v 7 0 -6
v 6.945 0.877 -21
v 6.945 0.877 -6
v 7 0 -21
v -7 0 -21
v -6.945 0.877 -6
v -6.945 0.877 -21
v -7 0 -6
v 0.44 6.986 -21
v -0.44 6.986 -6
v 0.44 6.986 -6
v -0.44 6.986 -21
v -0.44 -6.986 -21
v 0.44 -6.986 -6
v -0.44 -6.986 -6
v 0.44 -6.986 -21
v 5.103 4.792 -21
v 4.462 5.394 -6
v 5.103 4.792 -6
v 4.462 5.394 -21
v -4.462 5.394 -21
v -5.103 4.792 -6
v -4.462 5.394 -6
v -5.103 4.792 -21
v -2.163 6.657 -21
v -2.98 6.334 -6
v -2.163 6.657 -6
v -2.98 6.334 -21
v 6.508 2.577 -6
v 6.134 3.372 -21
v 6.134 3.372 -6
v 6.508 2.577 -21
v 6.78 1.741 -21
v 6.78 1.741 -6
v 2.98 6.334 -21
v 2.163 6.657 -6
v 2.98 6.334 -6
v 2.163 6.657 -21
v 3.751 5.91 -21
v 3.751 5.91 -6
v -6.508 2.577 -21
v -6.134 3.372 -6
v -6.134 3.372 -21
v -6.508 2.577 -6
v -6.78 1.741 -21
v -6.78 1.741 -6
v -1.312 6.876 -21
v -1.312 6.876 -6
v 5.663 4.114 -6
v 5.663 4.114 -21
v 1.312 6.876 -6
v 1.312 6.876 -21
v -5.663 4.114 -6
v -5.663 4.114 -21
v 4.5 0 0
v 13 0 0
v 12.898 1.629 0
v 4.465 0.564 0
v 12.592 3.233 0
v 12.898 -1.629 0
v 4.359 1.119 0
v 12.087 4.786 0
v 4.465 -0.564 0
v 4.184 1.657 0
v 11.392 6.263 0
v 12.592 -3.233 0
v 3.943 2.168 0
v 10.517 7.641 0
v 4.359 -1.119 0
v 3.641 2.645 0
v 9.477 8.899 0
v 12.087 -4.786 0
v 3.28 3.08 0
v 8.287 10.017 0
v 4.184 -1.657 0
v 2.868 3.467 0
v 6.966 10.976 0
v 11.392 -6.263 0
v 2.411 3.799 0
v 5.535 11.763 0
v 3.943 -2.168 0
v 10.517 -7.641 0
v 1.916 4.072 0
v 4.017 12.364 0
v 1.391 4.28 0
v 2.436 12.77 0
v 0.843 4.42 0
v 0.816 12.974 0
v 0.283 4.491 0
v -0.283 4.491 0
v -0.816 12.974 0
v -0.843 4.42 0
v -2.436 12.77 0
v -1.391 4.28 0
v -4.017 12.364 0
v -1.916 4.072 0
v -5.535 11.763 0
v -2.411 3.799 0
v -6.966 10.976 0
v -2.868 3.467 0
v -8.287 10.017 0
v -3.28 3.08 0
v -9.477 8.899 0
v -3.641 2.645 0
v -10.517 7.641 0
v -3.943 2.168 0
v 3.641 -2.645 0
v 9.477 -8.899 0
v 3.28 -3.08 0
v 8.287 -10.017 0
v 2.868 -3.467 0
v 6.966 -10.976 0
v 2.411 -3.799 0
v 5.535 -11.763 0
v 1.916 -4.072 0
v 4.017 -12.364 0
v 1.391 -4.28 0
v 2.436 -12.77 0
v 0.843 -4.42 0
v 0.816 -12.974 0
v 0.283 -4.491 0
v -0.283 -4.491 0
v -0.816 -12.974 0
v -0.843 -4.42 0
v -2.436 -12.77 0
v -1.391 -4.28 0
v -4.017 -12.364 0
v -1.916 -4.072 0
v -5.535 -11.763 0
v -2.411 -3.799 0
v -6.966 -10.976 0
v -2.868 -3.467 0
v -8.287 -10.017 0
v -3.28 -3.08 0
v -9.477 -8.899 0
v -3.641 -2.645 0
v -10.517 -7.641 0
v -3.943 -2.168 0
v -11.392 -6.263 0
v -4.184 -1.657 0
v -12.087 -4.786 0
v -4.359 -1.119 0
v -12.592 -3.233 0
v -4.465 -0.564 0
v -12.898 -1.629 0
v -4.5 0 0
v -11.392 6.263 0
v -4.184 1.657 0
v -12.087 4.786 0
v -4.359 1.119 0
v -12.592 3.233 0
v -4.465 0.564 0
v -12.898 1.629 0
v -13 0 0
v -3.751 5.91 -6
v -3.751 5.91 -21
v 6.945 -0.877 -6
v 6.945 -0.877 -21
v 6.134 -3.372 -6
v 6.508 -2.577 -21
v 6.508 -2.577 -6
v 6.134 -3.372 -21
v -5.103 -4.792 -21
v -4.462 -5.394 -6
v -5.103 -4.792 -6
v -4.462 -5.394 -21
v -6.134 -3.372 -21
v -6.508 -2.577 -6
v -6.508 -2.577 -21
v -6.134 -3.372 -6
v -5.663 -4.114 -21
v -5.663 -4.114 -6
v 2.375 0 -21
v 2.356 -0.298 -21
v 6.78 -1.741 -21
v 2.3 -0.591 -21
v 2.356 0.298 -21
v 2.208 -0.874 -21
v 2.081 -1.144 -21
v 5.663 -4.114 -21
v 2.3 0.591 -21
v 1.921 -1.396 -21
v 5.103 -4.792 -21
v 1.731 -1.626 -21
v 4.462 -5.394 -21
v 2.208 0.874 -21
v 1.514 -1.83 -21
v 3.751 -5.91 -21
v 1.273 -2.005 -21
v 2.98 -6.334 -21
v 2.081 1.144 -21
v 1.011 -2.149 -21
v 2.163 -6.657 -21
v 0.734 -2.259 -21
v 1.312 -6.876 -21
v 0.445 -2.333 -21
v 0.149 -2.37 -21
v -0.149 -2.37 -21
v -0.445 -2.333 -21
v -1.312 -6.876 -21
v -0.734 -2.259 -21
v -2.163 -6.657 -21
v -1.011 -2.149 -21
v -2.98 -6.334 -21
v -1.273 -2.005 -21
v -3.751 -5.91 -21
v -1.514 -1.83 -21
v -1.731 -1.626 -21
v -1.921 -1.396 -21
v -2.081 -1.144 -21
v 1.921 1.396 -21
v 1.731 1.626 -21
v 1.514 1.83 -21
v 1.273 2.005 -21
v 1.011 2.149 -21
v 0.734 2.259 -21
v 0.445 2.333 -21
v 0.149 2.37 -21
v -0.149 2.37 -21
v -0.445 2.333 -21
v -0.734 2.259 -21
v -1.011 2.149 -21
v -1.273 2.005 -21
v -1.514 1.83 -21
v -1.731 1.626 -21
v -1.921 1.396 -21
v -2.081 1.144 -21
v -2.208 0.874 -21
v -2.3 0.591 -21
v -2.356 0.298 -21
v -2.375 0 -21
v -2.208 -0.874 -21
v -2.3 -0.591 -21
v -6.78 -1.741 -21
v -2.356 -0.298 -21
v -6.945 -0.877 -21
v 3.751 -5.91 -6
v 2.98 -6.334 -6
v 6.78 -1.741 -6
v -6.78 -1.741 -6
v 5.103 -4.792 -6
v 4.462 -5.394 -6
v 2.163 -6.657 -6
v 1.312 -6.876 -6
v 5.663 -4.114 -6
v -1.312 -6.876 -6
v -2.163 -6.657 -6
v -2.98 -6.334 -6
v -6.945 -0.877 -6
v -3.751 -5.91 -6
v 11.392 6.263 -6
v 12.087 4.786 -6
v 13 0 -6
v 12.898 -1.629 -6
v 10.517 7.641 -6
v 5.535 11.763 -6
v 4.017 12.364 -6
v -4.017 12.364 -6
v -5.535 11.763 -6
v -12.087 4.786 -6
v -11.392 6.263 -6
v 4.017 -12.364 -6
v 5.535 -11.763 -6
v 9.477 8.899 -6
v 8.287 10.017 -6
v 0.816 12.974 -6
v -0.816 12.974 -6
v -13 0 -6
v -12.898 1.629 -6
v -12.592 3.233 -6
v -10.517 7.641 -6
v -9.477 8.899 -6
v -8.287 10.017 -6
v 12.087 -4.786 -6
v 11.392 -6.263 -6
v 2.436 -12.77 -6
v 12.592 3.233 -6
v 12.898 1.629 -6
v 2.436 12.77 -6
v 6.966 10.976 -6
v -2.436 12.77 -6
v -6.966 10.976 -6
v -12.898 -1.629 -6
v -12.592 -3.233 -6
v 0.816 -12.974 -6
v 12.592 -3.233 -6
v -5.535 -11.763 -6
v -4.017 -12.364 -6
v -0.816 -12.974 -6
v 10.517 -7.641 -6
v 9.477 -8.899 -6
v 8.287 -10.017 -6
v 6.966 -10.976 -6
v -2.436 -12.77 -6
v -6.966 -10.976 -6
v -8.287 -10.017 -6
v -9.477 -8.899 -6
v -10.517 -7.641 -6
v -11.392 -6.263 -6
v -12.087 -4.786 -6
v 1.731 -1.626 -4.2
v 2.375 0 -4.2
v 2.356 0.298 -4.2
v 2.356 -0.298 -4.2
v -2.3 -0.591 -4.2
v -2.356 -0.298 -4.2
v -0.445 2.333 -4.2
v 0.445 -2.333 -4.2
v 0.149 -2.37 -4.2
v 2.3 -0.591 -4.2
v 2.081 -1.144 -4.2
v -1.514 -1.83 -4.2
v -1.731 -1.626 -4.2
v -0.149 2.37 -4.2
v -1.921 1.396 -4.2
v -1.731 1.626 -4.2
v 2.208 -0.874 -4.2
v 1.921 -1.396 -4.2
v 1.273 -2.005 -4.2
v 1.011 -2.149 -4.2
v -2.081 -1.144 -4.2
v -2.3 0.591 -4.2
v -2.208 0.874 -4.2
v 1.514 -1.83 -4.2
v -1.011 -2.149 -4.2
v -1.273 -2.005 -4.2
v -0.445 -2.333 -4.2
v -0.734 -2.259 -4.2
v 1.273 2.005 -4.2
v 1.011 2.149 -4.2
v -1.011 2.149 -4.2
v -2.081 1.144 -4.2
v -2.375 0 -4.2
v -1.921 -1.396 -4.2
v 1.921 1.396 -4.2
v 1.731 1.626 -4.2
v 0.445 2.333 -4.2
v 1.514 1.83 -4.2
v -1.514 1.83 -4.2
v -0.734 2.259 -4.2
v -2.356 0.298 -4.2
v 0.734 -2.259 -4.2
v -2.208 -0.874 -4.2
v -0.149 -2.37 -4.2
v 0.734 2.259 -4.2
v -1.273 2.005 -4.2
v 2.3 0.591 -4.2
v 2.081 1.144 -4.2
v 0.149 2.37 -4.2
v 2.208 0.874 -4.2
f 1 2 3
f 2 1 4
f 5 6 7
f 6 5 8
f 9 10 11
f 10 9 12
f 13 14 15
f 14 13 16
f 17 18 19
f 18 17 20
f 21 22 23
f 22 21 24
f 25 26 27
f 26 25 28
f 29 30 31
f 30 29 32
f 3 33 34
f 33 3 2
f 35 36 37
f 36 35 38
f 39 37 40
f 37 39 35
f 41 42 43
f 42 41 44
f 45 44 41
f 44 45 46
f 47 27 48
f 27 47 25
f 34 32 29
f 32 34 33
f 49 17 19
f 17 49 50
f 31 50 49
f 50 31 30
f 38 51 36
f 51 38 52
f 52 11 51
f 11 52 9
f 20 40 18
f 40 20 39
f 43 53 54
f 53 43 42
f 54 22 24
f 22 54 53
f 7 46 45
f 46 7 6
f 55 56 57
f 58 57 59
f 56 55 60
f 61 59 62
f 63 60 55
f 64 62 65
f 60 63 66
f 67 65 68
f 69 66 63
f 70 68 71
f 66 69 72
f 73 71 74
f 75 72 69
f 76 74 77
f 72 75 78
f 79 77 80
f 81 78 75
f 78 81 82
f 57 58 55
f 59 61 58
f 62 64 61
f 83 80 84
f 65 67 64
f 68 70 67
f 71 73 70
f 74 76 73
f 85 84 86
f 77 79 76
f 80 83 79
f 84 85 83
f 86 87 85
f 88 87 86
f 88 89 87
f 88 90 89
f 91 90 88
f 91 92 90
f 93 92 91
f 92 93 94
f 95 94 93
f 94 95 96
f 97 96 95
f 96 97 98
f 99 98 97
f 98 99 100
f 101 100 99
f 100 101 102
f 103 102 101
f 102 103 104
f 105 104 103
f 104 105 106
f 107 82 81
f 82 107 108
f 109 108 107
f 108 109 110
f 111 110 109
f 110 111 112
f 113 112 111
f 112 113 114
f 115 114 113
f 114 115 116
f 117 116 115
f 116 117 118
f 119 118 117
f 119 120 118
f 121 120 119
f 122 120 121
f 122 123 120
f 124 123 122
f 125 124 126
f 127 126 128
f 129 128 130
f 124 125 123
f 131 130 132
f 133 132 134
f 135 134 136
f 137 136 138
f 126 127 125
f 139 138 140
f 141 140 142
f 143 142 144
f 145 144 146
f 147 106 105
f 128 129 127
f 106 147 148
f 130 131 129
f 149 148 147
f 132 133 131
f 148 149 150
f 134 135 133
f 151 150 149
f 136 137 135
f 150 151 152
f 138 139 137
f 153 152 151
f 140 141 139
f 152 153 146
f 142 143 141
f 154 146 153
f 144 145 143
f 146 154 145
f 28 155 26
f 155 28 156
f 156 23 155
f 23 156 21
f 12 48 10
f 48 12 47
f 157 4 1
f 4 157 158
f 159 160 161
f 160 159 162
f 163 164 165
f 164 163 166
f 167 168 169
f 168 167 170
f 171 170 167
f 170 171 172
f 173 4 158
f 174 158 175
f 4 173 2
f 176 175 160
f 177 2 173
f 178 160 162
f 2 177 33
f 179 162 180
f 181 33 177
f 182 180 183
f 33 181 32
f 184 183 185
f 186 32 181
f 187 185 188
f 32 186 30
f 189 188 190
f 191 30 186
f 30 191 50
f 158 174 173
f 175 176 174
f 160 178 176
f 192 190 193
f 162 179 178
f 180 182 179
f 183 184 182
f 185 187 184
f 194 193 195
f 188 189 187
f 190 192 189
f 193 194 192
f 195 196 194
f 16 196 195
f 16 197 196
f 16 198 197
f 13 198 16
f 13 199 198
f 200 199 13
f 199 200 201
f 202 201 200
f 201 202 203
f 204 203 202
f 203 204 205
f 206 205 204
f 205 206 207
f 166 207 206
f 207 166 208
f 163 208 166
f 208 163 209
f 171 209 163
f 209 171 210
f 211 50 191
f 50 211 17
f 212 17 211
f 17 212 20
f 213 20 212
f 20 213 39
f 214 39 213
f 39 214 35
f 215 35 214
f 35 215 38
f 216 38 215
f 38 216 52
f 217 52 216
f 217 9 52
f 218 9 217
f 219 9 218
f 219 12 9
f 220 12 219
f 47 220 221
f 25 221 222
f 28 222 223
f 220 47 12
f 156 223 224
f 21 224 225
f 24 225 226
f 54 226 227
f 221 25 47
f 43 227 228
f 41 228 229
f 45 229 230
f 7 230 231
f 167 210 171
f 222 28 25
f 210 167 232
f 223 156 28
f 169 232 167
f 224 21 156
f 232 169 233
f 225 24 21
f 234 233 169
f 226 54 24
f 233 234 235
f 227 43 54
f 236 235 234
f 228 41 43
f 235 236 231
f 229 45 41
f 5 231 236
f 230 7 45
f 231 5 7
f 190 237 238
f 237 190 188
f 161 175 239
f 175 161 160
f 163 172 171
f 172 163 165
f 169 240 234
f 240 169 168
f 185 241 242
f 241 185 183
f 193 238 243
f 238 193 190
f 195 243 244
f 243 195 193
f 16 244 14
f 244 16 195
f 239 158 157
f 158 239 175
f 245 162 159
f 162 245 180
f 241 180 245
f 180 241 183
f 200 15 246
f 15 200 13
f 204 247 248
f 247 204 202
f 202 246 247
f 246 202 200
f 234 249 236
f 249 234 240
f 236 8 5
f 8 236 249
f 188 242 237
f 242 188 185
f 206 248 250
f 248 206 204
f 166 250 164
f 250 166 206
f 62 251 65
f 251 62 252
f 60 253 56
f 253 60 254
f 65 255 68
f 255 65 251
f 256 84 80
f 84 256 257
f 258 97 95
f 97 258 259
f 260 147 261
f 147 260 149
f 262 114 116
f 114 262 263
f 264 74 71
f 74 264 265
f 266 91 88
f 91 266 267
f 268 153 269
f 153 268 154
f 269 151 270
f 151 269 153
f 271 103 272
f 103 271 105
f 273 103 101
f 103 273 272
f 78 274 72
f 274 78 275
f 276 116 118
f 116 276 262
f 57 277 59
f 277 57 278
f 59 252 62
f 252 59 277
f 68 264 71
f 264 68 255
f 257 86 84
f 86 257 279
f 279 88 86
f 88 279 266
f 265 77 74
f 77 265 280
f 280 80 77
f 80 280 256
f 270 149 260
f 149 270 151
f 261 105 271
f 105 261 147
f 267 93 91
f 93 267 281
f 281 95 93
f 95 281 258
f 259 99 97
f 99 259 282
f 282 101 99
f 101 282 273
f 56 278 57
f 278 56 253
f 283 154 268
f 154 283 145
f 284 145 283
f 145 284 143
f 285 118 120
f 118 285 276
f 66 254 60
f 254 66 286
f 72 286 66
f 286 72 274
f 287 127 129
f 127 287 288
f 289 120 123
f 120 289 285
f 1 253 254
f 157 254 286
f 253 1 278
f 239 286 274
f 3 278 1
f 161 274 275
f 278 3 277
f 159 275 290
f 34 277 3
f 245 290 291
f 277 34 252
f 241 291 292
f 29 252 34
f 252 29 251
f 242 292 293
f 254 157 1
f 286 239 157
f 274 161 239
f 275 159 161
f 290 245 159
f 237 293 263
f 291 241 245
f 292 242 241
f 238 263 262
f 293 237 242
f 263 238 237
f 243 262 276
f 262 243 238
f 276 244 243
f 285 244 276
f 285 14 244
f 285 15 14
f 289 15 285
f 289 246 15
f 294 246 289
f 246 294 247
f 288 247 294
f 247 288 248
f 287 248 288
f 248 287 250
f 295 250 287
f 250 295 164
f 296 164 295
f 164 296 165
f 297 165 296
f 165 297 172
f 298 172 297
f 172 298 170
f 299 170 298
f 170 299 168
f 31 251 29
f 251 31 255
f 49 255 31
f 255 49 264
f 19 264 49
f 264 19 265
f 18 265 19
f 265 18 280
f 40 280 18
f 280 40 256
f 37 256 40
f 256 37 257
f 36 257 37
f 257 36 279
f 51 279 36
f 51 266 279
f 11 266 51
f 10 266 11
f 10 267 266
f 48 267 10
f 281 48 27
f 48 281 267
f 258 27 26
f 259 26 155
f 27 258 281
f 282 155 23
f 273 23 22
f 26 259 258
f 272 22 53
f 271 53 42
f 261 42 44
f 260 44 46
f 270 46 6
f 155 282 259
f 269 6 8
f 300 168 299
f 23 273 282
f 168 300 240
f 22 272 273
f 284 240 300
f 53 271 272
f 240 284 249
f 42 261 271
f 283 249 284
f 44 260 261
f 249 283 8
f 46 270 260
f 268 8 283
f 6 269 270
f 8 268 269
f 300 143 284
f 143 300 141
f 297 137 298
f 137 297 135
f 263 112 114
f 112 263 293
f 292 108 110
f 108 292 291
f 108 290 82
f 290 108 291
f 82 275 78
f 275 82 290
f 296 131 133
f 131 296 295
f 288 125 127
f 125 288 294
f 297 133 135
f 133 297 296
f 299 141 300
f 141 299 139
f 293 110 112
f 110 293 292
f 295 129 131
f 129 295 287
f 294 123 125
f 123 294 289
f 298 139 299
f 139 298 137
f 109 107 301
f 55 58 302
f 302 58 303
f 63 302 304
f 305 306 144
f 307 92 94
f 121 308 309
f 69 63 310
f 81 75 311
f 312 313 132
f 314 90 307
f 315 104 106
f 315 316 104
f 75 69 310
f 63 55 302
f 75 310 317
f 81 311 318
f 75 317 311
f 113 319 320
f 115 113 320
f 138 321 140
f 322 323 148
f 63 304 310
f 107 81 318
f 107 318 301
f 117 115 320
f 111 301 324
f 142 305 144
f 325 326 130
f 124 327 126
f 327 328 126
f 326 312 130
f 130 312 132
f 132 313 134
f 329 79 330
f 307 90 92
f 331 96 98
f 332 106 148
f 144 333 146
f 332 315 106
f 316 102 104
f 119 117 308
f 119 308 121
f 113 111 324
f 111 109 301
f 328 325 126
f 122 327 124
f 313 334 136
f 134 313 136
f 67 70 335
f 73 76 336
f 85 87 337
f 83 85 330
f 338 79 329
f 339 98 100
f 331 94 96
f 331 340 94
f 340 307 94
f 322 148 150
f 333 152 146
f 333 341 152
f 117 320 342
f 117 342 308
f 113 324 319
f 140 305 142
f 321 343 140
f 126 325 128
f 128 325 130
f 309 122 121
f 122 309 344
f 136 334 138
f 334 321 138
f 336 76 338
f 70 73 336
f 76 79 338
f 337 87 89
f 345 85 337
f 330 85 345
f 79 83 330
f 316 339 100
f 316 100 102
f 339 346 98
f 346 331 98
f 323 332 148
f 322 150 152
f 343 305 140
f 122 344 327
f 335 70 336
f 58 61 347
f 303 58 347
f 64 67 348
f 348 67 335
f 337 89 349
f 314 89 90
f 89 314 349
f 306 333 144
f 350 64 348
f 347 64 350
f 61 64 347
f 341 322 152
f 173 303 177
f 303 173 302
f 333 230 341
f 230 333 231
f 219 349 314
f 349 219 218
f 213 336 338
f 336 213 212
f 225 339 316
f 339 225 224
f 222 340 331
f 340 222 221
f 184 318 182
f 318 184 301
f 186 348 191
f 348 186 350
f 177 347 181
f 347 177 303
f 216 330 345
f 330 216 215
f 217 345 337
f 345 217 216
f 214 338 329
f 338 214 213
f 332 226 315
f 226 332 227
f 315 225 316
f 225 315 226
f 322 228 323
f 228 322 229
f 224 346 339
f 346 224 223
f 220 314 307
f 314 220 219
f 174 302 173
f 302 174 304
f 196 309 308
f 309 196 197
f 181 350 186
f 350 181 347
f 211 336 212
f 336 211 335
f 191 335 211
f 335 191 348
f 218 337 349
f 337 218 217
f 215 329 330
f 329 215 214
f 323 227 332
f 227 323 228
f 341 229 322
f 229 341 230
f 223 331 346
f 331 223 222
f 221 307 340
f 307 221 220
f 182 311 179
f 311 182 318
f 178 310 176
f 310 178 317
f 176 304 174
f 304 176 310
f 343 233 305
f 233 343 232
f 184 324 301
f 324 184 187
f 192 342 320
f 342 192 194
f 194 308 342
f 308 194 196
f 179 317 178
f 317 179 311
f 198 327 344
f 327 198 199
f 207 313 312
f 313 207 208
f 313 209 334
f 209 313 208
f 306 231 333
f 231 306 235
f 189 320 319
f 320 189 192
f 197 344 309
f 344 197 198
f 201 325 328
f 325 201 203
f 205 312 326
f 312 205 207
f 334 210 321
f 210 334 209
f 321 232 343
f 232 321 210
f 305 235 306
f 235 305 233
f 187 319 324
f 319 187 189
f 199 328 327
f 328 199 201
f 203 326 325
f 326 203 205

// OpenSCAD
$fn = 50;


difference() {
	union() {
		translate(v = [0, 0, -21.0000000000]) {
			cylinder(h = 21, r = 7.0000000000);
		}
		translate(v = [0, 0, -6.0000000000]) {
			cylinder(h = 6, r = 13.0000000000);
		}
	}
	union() {
		translate(v = [0, 0, 0]) {
			rotate(a = [0, 0, 0]) {
				difference() {
					union() {
						#translate(v = [0, 0, -21.0000000000]) {
							cylinder(h = 21, r = 2.2500000000);
						}
						#translate(v = [0, 0, -4.2000000000]) {
							cylinder(h = 4.2000000000, r1 = 2.3750000000, r2 = 4.5000000000);
						}
						#translate(v = [0, 0, -21.0000000000]) {
							cylinder(h = 21, r = 2.3750000000);
						}
						#translate(v = [0, 0, -21.0000000000]) {
							cylinder(h = 21, r = 2.2500000000);
						}
					}
					union();
				}
			}
		}
	}
}
